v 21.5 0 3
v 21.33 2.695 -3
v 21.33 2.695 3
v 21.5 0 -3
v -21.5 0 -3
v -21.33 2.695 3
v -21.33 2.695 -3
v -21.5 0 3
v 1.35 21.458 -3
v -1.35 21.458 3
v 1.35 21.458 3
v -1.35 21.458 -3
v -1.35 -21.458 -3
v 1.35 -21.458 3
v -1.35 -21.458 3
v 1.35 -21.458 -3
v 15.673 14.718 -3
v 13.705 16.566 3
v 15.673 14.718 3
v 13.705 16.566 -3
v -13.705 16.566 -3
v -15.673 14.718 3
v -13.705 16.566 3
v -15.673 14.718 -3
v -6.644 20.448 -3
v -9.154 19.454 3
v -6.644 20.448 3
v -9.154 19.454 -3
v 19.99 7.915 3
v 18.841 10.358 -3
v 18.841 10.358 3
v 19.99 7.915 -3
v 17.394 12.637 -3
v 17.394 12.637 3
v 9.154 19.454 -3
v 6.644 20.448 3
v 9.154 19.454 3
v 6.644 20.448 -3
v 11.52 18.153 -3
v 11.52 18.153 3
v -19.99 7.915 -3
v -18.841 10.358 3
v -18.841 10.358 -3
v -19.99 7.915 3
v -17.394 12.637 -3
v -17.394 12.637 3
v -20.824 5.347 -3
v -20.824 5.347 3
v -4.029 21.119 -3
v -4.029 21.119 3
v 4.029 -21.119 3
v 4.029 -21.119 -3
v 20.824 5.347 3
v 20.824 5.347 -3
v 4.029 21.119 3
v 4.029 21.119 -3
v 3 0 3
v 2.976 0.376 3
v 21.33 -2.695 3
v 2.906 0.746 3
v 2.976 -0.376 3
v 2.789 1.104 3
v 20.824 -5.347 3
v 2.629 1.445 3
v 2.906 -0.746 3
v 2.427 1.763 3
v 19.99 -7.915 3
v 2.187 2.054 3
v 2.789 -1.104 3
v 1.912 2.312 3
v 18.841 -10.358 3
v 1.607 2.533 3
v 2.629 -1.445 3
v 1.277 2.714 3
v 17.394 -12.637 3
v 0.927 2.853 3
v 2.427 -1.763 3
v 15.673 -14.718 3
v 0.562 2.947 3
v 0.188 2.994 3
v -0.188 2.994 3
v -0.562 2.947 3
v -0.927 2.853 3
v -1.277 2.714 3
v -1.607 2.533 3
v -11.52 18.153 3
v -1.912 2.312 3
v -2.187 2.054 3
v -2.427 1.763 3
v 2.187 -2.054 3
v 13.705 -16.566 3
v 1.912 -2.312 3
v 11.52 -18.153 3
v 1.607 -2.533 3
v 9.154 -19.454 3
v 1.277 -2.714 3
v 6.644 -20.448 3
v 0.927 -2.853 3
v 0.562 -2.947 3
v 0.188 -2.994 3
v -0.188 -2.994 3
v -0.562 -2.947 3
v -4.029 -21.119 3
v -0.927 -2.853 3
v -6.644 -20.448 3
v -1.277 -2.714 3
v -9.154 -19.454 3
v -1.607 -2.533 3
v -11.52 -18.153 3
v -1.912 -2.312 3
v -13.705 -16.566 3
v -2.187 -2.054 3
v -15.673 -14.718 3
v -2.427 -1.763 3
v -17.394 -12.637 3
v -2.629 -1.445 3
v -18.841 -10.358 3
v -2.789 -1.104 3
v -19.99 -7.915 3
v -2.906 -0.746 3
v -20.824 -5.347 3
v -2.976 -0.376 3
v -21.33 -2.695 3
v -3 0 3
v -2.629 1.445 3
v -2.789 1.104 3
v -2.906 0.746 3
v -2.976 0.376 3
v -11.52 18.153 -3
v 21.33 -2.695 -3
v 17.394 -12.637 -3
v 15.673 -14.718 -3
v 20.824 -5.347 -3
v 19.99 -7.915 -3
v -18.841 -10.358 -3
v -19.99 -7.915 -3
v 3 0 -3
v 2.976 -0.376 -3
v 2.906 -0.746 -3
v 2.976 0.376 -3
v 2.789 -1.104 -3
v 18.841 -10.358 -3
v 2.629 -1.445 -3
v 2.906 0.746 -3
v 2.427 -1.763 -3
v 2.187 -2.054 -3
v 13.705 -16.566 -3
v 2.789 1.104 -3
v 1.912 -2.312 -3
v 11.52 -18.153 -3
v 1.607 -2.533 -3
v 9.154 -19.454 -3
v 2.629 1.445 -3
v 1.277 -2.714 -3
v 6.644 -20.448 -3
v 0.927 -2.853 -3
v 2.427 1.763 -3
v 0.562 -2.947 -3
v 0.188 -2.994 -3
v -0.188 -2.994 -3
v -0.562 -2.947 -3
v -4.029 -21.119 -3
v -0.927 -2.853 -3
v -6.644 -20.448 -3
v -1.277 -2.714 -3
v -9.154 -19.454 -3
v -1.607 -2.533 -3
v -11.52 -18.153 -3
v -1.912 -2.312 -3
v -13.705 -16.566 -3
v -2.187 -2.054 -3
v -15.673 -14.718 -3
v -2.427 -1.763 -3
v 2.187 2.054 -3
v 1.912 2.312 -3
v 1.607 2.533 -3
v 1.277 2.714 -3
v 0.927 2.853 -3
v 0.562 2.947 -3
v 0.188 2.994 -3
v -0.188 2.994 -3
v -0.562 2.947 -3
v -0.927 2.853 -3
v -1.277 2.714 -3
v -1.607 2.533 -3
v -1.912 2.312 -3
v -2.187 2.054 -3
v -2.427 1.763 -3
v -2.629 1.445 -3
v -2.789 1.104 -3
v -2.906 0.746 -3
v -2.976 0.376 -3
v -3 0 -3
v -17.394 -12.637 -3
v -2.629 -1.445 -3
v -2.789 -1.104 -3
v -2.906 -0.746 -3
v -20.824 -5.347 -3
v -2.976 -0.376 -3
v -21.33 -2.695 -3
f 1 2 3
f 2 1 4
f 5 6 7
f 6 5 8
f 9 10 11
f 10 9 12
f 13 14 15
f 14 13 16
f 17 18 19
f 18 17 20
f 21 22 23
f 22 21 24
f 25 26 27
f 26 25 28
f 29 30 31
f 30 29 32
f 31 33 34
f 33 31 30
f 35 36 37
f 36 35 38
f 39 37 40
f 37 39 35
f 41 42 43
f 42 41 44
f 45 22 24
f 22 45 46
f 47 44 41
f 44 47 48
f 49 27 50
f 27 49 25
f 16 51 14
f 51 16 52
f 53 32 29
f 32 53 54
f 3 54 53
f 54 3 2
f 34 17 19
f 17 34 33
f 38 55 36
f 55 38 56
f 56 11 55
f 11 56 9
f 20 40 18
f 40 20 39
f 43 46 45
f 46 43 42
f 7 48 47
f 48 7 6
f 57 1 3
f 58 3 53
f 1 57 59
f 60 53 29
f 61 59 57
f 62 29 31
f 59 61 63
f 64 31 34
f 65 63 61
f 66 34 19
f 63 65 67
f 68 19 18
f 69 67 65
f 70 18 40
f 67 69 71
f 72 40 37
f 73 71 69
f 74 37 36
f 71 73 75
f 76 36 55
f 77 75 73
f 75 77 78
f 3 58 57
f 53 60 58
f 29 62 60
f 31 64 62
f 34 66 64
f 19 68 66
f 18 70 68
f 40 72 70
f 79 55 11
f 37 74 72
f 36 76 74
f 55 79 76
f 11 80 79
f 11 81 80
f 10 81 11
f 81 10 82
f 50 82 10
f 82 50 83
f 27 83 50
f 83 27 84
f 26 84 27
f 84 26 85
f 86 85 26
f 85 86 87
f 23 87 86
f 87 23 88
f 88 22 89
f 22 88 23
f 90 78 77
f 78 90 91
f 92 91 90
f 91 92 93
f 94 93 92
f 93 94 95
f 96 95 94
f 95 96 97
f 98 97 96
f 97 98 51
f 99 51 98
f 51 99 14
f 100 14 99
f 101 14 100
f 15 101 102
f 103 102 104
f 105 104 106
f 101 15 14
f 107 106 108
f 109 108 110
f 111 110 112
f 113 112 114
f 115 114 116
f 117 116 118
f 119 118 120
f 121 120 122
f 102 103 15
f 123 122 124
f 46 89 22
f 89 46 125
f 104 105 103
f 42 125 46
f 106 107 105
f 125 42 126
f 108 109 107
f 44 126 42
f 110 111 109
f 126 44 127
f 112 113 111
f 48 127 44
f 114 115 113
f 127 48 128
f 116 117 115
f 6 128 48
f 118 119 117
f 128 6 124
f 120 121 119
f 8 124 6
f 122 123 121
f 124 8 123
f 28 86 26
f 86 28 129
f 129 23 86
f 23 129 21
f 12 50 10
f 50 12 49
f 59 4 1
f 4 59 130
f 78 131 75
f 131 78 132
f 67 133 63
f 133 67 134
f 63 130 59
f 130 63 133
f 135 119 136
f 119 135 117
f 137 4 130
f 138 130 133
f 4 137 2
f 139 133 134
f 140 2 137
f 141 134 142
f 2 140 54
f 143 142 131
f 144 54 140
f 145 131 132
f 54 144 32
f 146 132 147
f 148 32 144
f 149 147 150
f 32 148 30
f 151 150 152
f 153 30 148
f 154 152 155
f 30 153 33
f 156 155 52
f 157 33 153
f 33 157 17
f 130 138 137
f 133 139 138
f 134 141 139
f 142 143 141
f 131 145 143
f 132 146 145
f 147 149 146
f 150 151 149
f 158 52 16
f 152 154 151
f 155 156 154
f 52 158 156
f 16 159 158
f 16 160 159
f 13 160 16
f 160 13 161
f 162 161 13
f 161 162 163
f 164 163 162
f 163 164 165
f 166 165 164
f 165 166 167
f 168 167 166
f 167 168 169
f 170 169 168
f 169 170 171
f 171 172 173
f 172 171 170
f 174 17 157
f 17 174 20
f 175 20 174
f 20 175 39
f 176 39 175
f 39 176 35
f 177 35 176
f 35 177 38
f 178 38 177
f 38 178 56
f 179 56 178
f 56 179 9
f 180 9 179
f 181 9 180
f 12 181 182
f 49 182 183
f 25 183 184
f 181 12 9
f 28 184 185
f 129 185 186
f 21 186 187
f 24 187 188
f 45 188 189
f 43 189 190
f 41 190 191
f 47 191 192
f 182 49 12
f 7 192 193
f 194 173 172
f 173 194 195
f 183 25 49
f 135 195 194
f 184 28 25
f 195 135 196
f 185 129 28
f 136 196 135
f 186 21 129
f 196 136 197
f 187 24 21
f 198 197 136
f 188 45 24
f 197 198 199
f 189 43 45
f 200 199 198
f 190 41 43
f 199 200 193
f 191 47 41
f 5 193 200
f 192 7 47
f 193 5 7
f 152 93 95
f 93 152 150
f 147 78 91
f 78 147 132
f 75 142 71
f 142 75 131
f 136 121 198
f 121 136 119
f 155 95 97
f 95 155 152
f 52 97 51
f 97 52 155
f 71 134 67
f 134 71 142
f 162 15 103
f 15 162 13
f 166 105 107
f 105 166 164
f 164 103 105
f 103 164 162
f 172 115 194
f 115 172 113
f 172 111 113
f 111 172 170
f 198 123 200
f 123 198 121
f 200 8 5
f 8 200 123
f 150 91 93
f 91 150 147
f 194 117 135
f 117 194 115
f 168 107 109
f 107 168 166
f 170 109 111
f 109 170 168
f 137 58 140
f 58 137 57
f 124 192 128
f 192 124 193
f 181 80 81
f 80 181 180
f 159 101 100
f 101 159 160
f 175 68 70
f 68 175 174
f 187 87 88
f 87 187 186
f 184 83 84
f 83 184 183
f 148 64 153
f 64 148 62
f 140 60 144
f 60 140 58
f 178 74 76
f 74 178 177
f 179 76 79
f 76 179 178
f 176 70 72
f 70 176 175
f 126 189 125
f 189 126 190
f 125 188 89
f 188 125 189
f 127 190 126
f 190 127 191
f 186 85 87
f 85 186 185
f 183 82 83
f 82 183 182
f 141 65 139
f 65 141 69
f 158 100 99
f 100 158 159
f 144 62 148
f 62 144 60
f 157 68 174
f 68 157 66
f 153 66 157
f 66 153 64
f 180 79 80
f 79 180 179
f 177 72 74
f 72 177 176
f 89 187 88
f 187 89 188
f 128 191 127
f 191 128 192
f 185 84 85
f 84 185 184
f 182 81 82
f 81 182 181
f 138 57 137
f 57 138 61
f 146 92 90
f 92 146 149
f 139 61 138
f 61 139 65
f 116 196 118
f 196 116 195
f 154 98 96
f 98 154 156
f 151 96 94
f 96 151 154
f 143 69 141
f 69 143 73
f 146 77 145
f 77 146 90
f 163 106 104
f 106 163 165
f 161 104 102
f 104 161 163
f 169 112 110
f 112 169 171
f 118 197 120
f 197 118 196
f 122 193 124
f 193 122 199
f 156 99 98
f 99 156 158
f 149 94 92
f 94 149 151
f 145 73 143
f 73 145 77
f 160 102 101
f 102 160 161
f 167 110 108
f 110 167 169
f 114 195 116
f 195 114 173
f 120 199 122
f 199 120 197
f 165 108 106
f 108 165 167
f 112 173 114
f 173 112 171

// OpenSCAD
$fn = 50;


difference() {
	union() {
		translate(v = [0, 0, -3.0000000000]) {
			cylinder(h = 6, r = 21.5000000000);
		}
	}
	union() {
		translate(v = [0, 0, -100.0000000000]) {
			cylinder(h = 200, r = 3);
		}
	}
}
